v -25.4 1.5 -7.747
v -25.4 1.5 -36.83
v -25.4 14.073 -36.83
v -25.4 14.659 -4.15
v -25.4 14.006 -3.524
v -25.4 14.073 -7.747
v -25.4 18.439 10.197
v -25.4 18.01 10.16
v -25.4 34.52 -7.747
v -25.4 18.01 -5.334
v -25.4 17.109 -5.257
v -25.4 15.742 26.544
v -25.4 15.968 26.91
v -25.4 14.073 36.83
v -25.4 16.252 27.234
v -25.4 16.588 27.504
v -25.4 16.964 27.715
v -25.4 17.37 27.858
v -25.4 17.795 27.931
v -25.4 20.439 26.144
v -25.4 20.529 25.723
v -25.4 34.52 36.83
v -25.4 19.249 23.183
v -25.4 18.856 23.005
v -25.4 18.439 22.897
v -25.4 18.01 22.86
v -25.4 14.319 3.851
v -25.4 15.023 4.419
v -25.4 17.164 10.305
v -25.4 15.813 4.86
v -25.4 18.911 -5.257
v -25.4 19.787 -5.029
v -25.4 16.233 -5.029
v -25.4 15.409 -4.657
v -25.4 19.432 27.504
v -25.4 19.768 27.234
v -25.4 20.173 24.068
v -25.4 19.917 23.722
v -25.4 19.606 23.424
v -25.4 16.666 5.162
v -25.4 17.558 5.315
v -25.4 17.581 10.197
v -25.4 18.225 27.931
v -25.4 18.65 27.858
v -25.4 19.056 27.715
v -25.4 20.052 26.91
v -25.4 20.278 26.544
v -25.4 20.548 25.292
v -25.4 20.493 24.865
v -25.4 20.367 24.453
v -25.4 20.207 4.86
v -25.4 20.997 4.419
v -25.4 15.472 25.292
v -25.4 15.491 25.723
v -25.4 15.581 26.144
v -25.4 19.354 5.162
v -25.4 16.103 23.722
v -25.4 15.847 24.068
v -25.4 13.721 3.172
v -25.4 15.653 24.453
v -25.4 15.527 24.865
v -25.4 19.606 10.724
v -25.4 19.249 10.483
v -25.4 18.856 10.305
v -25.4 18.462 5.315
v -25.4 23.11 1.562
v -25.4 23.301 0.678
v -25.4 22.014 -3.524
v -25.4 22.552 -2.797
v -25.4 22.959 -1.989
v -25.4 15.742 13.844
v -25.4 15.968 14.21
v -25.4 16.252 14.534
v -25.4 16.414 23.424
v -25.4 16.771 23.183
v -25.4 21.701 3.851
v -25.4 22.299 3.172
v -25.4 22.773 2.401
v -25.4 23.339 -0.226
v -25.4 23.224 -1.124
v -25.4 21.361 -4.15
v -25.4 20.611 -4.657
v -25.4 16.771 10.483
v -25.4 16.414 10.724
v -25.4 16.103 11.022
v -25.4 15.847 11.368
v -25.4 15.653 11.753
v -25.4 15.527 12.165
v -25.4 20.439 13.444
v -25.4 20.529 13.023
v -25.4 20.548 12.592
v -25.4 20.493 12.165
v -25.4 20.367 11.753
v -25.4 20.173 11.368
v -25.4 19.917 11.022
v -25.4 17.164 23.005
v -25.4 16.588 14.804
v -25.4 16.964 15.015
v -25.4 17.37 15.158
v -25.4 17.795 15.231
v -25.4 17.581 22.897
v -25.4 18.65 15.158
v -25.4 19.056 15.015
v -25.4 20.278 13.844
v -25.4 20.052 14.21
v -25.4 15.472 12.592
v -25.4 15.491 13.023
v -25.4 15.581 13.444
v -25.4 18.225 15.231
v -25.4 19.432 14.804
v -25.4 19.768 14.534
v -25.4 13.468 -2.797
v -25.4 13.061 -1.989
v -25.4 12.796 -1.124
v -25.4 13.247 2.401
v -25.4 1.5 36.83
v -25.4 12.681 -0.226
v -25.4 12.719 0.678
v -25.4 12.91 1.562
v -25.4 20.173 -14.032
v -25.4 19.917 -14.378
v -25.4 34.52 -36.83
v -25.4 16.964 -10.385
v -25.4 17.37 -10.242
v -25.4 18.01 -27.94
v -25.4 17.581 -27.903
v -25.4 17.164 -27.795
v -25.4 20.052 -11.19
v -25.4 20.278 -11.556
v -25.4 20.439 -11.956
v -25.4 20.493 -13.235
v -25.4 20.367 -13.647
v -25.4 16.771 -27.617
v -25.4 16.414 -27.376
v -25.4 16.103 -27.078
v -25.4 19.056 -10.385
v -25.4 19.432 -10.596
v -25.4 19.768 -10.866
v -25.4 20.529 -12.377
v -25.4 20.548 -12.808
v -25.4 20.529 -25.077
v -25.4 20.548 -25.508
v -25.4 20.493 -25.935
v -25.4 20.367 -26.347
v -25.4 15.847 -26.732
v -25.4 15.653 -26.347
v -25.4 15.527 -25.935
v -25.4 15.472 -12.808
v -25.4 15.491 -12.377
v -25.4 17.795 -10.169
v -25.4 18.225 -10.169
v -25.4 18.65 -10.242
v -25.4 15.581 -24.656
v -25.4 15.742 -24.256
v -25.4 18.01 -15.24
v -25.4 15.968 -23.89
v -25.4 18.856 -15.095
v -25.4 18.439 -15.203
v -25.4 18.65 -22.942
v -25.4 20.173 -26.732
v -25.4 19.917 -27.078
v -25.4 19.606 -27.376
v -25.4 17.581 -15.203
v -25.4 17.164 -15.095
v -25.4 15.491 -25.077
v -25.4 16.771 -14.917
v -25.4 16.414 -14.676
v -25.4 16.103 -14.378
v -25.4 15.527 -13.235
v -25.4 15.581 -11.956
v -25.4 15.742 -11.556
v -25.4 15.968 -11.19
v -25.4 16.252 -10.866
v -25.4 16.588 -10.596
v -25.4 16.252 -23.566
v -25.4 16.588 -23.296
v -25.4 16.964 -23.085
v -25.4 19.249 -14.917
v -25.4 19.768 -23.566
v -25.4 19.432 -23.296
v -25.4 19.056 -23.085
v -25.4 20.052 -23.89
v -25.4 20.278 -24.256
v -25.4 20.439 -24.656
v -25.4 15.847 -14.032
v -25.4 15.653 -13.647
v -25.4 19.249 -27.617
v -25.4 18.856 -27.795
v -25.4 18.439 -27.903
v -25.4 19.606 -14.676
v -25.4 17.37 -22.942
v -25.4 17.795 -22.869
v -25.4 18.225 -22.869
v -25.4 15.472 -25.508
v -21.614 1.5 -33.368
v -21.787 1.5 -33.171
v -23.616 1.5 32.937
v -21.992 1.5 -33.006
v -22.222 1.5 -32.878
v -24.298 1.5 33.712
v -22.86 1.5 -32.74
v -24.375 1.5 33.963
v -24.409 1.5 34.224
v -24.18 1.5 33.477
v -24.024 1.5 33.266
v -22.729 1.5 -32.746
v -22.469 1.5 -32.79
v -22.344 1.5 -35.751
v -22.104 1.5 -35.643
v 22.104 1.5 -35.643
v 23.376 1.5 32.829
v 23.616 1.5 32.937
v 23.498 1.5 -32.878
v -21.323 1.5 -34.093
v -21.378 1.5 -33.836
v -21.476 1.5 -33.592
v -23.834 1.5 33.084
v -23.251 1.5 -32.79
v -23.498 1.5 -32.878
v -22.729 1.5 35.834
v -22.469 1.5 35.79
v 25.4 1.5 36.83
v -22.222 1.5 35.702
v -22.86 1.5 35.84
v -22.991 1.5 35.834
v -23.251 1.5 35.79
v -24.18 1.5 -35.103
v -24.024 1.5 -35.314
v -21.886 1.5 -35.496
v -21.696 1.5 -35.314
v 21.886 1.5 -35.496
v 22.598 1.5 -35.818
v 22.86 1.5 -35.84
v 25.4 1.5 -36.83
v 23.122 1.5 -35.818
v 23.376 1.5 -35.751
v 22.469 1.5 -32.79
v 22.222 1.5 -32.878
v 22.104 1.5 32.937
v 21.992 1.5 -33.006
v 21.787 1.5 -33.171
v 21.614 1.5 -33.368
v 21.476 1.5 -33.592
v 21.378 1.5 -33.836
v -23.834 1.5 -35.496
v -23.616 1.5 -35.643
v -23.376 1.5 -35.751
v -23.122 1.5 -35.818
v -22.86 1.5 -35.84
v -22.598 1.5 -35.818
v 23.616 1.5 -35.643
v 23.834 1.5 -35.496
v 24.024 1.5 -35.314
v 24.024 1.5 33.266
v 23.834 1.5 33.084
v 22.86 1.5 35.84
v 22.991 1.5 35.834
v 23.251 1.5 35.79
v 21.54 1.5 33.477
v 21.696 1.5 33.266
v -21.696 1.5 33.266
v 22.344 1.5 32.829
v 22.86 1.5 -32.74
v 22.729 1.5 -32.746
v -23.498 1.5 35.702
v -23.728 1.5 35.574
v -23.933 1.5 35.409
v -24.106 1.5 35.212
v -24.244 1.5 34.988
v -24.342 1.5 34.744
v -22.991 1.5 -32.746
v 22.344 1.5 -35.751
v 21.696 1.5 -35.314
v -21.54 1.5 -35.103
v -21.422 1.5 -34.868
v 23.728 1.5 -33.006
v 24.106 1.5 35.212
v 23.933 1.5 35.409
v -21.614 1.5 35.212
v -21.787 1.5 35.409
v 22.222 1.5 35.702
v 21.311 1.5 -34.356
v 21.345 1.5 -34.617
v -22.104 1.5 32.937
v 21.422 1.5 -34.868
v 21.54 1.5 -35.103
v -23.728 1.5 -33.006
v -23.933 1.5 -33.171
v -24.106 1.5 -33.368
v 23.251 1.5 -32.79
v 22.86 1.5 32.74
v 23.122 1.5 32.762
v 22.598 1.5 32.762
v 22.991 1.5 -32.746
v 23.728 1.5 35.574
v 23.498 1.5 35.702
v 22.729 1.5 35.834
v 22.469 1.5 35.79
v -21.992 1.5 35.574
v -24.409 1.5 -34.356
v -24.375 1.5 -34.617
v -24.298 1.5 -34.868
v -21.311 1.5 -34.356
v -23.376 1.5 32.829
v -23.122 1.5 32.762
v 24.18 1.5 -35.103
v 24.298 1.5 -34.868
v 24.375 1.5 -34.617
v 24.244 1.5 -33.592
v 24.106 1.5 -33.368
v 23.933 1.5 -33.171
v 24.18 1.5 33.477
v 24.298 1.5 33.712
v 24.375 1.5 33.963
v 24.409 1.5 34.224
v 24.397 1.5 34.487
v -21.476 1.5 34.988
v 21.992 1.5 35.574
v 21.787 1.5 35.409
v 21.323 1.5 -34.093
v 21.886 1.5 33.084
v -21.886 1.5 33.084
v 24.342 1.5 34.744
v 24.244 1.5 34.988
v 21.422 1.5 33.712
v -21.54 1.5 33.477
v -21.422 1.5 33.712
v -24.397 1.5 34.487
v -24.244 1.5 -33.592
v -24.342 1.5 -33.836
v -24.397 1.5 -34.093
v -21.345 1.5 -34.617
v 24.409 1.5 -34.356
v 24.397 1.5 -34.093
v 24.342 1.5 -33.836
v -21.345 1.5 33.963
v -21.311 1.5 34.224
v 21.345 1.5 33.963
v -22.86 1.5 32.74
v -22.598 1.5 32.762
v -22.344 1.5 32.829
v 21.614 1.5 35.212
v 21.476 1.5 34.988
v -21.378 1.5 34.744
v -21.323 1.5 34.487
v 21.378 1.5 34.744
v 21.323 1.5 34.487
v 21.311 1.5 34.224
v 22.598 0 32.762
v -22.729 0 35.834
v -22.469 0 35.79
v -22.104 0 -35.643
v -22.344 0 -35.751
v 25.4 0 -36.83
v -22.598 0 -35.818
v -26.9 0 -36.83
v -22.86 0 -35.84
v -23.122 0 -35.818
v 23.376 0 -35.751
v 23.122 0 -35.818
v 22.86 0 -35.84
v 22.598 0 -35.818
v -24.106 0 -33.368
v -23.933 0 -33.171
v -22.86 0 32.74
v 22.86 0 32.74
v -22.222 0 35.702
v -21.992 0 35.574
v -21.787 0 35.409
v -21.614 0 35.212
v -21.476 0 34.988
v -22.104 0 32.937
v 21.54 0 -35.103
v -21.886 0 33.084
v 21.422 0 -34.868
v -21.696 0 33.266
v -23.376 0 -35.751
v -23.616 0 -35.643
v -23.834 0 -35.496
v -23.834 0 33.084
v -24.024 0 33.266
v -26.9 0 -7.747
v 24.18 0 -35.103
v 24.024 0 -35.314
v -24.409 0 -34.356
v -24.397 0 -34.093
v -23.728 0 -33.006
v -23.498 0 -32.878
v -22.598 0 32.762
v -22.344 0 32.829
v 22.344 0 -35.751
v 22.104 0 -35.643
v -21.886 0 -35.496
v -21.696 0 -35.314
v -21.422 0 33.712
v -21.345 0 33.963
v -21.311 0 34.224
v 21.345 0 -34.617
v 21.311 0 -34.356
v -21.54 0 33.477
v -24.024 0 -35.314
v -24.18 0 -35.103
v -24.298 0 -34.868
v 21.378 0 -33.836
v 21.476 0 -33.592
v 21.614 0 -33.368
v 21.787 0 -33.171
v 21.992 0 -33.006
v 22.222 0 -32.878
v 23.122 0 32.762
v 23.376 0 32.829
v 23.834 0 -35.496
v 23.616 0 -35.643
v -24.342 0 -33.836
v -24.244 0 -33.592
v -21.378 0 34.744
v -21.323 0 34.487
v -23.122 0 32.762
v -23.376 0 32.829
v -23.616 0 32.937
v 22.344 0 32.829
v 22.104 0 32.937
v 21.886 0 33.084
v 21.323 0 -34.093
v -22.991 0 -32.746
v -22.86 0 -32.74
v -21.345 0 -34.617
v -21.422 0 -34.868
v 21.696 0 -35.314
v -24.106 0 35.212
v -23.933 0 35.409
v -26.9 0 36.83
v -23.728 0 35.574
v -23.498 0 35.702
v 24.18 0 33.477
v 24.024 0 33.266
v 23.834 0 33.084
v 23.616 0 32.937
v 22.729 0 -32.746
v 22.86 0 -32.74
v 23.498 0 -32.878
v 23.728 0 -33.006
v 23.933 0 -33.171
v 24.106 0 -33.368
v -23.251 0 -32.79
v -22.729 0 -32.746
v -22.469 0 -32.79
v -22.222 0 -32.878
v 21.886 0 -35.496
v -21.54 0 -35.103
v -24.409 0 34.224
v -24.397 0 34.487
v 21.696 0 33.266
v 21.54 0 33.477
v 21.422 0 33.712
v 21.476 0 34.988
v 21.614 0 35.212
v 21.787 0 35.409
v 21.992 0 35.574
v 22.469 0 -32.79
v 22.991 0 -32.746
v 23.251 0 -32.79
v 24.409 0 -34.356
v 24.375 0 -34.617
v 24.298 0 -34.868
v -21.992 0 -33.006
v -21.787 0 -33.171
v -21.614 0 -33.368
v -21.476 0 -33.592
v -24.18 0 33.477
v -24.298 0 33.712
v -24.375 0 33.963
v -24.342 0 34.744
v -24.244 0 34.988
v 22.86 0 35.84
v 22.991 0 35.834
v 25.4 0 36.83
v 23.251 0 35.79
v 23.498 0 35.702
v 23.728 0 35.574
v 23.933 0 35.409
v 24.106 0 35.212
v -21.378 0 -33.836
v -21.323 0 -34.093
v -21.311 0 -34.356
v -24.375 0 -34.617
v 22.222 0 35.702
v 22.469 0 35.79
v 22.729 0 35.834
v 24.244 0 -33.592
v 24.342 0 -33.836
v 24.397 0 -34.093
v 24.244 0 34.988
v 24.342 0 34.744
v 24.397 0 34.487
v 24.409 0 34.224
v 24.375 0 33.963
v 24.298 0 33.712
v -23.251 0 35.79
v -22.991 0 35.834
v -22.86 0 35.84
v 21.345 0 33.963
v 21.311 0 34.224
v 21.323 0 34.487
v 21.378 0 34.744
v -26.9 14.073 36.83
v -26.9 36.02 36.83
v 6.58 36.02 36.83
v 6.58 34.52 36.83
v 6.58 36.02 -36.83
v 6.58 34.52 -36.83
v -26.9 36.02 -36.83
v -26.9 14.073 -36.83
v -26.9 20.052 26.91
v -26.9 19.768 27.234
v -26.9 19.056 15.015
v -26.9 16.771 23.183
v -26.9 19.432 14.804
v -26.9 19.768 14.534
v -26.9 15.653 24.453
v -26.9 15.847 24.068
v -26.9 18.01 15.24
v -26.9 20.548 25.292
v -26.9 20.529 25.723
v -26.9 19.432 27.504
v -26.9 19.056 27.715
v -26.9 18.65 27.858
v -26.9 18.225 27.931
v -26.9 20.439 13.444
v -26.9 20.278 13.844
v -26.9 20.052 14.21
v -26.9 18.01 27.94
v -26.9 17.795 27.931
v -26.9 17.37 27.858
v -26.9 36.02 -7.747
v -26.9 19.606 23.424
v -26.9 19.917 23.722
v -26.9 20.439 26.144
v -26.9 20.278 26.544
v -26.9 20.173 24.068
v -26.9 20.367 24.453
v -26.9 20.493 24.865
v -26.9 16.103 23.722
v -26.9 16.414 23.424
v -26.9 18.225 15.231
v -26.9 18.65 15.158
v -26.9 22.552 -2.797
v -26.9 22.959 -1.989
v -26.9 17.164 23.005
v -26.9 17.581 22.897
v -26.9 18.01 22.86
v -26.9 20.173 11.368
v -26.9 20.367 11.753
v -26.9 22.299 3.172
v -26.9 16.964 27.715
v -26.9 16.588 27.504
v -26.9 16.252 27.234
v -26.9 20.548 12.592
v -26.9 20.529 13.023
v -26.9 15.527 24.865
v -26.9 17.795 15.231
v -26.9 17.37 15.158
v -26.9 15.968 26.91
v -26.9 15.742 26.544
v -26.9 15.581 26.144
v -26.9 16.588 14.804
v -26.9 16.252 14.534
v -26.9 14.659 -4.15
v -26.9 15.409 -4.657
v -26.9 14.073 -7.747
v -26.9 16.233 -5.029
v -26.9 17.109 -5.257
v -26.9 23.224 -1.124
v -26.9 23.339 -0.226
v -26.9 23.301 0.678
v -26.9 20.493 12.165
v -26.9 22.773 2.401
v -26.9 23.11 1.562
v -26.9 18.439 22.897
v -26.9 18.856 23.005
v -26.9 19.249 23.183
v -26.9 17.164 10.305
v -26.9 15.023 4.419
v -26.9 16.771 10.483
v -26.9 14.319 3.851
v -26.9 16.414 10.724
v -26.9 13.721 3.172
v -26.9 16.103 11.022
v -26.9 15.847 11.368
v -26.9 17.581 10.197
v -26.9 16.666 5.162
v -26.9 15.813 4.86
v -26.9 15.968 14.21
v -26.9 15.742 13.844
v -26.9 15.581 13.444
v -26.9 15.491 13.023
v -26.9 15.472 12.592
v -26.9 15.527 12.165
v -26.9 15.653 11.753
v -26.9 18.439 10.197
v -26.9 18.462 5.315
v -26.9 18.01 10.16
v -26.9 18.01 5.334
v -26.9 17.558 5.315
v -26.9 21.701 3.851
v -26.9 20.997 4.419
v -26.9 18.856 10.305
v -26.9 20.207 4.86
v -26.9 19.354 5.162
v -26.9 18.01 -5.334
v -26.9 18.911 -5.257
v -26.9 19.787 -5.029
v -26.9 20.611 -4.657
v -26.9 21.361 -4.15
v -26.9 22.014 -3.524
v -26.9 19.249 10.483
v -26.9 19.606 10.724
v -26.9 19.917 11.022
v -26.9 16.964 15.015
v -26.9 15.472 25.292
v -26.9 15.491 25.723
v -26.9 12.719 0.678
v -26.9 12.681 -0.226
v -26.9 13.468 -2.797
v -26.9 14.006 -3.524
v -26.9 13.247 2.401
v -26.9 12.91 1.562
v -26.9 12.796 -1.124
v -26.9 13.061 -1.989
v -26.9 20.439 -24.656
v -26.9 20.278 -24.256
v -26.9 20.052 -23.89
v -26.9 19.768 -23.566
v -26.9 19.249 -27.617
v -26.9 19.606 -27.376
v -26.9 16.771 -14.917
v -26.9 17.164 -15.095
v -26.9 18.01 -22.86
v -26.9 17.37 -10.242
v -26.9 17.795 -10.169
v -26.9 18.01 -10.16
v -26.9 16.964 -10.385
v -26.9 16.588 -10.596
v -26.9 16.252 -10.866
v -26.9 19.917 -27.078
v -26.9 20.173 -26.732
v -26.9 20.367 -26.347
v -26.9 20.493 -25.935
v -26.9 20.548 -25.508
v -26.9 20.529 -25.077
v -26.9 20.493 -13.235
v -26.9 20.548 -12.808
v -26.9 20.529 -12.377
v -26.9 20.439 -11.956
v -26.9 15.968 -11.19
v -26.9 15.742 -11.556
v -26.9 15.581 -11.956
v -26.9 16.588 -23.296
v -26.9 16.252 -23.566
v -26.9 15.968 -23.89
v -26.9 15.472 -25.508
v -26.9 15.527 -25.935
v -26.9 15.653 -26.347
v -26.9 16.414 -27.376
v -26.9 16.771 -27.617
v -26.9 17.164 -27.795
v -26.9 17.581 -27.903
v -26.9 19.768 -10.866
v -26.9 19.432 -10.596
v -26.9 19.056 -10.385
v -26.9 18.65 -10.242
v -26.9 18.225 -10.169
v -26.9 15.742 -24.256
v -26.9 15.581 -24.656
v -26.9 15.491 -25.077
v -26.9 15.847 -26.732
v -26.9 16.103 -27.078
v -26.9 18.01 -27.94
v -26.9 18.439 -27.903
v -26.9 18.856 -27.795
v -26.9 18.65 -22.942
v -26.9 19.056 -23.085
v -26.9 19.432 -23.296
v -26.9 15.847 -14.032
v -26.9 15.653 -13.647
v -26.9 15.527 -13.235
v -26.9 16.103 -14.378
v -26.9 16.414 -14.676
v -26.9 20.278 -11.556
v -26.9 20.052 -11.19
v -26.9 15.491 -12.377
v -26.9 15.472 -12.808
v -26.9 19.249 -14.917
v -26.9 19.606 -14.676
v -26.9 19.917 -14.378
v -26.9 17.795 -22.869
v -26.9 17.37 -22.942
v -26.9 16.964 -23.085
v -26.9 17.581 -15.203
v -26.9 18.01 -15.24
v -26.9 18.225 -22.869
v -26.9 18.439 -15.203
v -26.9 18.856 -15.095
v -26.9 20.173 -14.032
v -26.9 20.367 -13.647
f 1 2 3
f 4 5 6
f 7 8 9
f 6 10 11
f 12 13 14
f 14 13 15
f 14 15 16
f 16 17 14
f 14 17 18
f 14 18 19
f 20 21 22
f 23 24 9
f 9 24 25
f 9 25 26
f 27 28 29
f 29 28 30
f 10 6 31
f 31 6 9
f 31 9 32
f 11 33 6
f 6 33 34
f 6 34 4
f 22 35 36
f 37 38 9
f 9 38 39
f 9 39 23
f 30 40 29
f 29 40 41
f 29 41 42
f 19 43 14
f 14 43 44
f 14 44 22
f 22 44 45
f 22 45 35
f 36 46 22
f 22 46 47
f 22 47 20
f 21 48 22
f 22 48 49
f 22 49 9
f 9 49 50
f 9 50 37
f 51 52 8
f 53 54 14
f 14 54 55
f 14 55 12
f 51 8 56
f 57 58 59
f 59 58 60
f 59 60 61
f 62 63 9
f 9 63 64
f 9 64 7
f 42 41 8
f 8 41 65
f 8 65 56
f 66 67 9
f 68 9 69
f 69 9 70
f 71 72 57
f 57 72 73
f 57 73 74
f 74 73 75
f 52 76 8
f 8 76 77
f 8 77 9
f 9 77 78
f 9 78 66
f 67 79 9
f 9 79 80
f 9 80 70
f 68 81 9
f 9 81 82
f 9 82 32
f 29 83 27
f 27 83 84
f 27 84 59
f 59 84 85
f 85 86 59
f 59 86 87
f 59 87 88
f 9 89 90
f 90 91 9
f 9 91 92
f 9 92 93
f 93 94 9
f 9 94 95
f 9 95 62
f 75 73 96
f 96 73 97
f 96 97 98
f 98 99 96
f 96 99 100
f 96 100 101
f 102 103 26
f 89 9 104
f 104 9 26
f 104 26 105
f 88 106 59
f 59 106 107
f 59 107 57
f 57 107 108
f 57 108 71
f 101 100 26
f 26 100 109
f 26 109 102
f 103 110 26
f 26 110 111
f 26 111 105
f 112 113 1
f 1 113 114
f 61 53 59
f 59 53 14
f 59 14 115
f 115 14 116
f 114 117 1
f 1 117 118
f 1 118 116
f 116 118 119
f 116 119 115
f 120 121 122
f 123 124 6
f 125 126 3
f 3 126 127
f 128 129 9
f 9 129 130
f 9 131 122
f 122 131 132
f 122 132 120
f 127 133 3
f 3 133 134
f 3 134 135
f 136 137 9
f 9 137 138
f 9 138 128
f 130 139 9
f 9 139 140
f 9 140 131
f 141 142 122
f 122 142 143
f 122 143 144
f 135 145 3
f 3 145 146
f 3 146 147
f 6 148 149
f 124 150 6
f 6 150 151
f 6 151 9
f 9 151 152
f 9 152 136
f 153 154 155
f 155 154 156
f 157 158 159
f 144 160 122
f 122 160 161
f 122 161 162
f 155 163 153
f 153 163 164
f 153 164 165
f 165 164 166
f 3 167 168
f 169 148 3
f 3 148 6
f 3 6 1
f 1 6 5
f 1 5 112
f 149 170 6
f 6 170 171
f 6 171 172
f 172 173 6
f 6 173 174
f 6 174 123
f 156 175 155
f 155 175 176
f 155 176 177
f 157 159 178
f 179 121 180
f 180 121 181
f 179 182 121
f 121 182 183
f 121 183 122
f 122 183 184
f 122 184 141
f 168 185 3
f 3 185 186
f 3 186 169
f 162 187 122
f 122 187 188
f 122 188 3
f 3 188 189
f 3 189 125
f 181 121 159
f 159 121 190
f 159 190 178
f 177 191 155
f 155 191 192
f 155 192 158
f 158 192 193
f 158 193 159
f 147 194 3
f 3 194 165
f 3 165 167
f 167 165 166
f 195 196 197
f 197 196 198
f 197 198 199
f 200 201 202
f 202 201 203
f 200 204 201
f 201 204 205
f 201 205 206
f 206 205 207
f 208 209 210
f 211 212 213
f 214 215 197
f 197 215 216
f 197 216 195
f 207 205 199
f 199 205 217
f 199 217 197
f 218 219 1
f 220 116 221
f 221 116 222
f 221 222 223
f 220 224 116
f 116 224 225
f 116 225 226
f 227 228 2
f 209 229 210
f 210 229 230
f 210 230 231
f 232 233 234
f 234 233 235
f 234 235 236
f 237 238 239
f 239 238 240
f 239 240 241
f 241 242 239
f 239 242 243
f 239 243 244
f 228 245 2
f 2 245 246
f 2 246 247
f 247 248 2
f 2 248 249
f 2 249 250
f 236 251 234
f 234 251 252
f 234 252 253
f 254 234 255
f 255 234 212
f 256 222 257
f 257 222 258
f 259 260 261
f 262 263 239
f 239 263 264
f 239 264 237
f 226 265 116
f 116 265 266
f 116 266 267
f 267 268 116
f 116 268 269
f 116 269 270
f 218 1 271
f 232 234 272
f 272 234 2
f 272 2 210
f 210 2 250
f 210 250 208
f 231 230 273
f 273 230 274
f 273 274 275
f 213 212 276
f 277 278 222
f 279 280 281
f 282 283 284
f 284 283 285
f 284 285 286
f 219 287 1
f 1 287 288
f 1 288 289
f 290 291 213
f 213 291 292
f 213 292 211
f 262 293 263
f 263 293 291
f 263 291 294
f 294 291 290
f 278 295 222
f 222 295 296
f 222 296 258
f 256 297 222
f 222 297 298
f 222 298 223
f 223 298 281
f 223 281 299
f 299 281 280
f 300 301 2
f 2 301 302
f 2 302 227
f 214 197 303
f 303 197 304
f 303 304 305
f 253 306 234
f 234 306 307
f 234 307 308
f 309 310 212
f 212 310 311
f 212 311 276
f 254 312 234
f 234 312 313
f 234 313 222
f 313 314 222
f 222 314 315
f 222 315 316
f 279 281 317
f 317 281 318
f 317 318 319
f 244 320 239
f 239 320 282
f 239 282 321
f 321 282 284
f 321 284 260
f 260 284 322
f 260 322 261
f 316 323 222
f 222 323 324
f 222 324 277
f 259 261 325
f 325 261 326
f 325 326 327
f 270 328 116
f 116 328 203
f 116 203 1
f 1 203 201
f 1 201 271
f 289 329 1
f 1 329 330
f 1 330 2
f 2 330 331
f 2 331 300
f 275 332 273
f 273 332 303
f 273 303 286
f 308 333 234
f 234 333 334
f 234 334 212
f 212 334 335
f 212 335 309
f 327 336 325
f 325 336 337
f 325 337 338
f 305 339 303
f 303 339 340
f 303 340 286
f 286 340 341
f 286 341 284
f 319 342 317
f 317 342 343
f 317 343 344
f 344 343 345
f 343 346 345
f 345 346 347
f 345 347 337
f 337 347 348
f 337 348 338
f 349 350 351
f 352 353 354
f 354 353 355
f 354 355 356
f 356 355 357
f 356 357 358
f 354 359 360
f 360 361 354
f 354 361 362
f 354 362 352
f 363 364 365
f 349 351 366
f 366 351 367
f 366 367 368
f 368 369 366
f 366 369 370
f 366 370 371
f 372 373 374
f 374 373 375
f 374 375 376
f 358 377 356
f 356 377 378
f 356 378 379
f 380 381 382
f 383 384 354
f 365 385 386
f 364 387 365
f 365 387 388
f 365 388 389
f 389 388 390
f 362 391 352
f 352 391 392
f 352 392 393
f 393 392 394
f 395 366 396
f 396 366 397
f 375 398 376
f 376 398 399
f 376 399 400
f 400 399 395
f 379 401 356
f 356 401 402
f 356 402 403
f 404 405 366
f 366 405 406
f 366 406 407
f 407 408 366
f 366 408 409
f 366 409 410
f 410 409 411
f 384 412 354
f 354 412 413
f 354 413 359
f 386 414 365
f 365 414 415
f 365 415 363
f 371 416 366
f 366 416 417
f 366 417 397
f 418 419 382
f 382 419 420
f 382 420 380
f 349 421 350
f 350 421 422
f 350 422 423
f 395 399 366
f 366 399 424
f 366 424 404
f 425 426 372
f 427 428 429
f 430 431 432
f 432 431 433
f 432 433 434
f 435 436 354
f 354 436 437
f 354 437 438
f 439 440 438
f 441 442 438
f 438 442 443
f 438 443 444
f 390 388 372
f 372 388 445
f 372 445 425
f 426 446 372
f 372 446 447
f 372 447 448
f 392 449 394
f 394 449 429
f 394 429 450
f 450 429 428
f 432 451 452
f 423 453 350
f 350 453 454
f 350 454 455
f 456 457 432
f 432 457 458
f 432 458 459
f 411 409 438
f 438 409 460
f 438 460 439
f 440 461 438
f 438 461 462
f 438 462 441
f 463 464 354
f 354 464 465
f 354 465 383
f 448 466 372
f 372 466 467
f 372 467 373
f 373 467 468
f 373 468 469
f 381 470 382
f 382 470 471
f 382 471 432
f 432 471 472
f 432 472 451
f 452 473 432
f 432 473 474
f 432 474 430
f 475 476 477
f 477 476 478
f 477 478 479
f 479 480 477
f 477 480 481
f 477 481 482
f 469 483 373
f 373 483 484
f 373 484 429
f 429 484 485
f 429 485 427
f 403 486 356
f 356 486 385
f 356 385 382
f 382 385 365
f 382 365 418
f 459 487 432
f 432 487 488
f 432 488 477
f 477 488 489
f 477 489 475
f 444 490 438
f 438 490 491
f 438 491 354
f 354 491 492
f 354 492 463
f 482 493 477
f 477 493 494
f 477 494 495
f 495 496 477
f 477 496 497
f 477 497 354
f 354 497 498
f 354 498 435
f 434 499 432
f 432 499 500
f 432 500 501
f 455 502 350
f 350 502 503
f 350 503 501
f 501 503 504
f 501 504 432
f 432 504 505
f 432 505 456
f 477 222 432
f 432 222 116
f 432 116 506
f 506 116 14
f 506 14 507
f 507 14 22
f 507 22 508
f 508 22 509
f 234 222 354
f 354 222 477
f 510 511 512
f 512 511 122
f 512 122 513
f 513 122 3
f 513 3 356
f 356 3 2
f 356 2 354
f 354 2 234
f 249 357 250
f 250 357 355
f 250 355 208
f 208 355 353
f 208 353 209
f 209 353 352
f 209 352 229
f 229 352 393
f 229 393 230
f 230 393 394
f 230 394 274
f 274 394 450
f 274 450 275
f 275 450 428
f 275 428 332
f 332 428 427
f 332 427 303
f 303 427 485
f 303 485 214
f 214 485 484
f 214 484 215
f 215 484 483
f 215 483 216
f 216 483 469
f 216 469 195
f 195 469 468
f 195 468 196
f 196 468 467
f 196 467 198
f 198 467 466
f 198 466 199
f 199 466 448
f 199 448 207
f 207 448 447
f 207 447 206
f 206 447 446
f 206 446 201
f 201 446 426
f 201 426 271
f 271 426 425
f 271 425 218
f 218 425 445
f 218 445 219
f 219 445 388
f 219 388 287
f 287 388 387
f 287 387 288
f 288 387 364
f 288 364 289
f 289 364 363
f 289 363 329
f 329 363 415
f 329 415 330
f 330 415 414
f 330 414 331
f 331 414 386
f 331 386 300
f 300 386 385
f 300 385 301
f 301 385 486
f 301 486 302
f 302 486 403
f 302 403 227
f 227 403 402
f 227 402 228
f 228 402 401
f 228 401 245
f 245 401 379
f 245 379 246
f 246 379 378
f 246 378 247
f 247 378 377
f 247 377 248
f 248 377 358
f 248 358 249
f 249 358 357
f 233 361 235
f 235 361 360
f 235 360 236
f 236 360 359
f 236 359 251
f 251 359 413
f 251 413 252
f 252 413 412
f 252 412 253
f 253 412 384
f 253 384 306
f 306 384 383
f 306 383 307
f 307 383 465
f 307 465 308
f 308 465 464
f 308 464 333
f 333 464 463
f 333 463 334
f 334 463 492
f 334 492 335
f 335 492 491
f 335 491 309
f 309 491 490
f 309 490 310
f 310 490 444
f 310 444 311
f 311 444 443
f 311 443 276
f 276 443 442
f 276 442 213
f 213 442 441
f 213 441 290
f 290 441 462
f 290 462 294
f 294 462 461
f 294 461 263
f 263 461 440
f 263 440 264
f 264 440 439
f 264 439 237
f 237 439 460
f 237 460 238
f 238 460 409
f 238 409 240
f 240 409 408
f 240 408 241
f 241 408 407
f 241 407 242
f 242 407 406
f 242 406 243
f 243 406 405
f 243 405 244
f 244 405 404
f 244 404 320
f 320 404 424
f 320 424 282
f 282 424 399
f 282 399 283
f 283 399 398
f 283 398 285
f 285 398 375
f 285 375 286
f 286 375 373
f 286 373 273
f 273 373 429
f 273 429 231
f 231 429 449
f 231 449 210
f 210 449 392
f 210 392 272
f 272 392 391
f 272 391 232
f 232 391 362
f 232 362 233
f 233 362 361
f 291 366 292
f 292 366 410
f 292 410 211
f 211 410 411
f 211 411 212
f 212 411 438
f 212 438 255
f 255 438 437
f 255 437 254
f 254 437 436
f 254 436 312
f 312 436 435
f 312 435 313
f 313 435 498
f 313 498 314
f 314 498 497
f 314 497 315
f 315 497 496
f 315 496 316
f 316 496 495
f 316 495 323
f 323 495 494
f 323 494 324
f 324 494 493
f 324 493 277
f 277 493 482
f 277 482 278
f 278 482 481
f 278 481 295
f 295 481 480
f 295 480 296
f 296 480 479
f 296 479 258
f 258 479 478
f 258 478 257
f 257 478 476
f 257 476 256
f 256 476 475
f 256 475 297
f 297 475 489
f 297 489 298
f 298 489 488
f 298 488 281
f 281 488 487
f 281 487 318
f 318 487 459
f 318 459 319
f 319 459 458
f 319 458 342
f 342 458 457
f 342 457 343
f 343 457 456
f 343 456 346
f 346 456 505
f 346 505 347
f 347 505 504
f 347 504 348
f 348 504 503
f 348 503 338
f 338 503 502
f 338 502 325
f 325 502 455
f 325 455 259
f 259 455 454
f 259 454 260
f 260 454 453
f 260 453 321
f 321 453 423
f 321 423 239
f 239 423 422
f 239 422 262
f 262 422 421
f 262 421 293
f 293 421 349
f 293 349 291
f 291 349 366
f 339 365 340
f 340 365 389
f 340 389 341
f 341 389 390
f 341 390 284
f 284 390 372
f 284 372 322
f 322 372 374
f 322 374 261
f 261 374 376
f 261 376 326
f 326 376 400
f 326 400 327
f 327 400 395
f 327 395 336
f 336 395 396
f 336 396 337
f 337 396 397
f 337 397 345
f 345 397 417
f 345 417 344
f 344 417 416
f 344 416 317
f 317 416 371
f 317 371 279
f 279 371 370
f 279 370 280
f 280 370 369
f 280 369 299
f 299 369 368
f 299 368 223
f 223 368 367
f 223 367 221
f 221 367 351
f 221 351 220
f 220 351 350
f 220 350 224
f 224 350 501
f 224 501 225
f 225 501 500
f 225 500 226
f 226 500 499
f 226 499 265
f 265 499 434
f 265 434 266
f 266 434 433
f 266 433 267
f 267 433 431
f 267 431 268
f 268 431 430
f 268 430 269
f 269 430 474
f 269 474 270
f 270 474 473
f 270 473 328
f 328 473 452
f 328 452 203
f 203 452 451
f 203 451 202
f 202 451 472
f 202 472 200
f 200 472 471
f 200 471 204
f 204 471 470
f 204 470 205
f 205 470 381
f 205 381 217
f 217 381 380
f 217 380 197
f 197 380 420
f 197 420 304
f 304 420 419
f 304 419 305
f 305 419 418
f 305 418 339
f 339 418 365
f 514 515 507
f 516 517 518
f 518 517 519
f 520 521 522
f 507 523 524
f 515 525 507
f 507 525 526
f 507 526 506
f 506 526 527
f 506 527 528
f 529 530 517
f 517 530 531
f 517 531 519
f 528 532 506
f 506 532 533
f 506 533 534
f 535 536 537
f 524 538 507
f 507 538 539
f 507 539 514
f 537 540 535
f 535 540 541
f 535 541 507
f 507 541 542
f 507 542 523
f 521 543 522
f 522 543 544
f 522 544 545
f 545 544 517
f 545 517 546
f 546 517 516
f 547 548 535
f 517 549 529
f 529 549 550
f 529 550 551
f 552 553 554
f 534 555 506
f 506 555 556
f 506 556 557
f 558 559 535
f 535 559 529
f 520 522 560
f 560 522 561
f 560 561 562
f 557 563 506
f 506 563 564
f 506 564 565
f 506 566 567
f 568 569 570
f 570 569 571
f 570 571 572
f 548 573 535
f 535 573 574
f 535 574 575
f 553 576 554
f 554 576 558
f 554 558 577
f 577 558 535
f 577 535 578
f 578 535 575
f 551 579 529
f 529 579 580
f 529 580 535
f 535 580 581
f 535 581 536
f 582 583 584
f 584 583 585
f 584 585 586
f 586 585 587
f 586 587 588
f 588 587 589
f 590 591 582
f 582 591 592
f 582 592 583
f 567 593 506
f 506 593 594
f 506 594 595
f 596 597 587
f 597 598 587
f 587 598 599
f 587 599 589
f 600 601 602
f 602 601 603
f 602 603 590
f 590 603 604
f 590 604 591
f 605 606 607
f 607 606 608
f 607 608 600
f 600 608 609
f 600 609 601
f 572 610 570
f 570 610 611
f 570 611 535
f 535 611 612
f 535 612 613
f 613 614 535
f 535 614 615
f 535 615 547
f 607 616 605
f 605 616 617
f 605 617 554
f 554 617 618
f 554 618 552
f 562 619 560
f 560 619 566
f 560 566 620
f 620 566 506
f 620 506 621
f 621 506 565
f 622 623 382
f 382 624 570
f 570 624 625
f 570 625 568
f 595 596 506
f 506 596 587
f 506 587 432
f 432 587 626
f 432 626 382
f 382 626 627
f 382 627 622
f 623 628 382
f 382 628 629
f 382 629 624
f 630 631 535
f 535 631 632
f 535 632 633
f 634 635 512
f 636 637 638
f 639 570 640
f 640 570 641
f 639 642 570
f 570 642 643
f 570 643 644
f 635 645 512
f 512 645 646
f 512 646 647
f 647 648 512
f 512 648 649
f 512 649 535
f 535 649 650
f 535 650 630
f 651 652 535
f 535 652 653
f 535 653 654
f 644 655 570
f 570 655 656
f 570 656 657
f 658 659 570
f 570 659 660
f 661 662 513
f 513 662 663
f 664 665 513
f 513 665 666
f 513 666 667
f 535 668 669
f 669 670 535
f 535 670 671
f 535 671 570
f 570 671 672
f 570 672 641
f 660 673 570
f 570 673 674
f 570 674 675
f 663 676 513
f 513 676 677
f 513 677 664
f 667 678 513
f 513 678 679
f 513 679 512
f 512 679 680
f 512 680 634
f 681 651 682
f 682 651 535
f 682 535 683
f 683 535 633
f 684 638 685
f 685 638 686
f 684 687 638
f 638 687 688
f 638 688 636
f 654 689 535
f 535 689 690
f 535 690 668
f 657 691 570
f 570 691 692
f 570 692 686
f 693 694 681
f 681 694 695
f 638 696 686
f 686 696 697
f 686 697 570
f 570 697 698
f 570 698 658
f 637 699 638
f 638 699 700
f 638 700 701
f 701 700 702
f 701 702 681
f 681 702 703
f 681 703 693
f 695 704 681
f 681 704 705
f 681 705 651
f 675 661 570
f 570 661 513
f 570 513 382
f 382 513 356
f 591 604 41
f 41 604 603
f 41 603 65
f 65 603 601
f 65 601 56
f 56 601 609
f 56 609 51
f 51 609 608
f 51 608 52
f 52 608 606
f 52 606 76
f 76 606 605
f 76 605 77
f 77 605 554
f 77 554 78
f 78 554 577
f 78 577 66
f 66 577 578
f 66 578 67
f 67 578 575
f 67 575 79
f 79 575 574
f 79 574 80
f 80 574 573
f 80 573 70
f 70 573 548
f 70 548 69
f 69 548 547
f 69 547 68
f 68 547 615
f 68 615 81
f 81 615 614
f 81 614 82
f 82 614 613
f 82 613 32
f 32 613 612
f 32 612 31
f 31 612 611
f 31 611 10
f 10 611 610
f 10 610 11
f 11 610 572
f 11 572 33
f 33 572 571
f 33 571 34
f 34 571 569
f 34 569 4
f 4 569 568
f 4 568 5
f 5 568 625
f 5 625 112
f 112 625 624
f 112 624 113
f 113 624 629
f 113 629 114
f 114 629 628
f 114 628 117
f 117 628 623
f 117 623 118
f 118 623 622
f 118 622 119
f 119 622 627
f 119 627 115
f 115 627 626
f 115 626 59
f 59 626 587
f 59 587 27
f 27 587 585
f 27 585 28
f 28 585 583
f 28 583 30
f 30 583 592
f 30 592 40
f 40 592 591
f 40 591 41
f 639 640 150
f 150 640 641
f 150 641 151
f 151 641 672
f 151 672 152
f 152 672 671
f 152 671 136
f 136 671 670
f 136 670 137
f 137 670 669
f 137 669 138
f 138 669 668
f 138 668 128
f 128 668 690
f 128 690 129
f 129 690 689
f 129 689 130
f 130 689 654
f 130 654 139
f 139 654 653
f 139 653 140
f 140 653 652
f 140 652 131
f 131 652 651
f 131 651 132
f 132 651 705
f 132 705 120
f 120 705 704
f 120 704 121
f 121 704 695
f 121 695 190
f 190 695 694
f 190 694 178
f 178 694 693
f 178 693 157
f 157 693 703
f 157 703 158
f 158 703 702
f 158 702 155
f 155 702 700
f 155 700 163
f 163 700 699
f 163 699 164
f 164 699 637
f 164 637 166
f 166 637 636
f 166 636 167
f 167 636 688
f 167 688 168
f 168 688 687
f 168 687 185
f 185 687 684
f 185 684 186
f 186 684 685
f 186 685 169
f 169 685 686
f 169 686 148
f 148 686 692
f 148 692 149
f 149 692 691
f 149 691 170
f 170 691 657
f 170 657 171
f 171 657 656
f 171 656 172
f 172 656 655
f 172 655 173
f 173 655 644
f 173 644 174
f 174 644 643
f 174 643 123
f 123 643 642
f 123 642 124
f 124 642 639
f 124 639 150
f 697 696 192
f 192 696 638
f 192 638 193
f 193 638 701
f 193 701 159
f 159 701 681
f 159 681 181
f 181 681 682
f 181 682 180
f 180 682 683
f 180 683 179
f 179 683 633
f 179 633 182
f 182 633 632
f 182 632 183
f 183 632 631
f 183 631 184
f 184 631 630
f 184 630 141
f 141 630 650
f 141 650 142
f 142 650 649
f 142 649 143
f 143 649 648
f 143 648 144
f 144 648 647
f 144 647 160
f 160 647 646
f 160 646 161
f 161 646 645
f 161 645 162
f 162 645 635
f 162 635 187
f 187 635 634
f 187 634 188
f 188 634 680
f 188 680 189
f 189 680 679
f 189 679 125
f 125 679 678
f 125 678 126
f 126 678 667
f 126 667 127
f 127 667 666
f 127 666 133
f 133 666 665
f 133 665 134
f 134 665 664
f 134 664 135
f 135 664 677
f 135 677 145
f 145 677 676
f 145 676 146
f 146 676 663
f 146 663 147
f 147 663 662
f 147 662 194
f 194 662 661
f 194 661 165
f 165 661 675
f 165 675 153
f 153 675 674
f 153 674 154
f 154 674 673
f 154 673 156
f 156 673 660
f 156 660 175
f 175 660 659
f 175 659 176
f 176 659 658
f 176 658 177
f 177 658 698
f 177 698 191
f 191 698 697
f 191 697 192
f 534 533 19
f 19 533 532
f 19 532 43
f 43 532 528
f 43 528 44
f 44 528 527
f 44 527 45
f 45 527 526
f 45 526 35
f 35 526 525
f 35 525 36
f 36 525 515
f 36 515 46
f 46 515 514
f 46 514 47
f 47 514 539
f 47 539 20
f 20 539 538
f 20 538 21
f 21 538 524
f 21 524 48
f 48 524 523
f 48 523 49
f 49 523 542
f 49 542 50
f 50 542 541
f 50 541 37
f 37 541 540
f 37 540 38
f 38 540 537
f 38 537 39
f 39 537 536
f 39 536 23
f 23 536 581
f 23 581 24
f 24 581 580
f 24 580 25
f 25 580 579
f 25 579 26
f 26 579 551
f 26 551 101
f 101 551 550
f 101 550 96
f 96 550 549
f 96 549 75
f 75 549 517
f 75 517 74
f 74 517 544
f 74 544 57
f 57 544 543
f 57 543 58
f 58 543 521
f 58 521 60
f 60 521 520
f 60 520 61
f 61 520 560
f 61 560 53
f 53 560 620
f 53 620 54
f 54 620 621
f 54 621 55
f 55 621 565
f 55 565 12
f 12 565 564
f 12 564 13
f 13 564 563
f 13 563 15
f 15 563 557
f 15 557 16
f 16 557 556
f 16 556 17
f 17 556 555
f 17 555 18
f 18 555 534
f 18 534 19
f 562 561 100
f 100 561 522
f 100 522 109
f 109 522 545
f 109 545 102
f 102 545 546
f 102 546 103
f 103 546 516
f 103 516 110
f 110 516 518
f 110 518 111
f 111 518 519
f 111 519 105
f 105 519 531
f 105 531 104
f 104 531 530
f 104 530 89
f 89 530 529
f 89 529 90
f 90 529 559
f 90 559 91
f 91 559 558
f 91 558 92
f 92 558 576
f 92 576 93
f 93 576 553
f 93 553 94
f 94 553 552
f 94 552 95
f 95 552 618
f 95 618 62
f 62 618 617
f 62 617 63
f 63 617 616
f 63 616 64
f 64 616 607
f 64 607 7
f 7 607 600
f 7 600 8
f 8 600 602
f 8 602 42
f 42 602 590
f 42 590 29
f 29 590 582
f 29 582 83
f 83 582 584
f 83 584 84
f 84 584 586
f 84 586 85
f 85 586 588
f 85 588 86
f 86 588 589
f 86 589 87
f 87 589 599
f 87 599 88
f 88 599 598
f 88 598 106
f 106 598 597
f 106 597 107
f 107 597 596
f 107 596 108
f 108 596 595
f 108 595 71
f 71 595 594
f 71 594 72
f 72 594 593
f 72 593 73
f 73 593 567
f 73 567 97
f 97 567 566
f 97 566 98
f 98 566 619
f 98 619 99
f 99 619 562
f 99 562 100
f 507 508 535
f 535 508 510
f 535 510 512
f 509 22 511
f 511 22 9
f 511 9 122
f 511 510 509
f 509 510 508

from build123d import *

# Parameters (mm, degrees)
SKETCH_1_W          = 50.8
SKETCH_1_H          = 73.66
SKETCH_1_R          = 1.55
EXTRUDE_1_DEPTH     = 1.5
SKETCH_2_W          = 73.66
SKETCH_2_H          = 1.5
EXTRUDE_2_DEPTH     = 1.5
SKETCH_3_W          = 1.5
SKETCH_3_H          = 73.66
EXTRUDE_3_DEPTH     = 33.02
SKETCH_4_R          = 5.334
SKETCH_4_R_2        = 2.54
CUT_EXTRUDE_1_DEPTH = 33.02
SKETCH_6_W          = 1.5
SKETCH_6_H          = 73.66
EXTRUDE_4_DEPTH     = 1.5
SKETCH_7_W          = 73.66
SKETCH_7_H          = 1.5
EXTRUDE_5_DEPTH     = 31.98


with BuildPart() as part:
    # 草图1 → 凸台-拉伸1 (new body)
    with BuildSketch(Plane(origin=(0, 0, 0), x_dir=(1, 0, 0), z_dir=(0, 1, 0))):
        Rectangle(SKETCH_1_W, SKETCH_1_H)
        with Locations(Location((-22.86, 34.29, 0), (0, 0, 270))):
            Circle(SKETCH_1_R, mode=Mode.SUBTRACT)
        with Locations(Location((22.86, 34.29, 0), (0, 0, 270))):
            Circle(SKETCH_1_R, mode=Mode.SUBTRACT)
        with Locations(Location((22.86, -34.29, 0), (0, 0, 270))):
            Circle(SKETCH_1_R, mode=Mode.SUBTRACT)
        with Locations(Location((-22.86, -34.29, 0), (0, 0, 270))):
            Circle(SKETCH_1_R, mode=Mode.SUBTRACT)
    extrude(amount=EXTRUDE_1_DEPTH)

    # 草图2 → 凸台-拉伸2 (add)
    with BuildSketch(Plane.ZY.offset(25.4)):
        with Locations((0, 0.75)):
            Rectangle(SKETCH_2_W, SKETCH_2_H)
    extrude(amount=EXTRUDE_2_DEPTH)

    # 草图3 → 凸台-拉伸3 (add)
    with BuildSketch(Plane(origin=(0, 1.5, 0), x_dir=(1, 0, 0), z_dir=(0, 1, 0))):
        with Locations((-26.15, 0)):
            Rectangle(SKETCH_3_W, SKETCH_3_H)
    extrude(amount=EXTRUDE_3_DEPTH)

    # 草图4 → 切除-拉伸1 (cut)
    with BuildSketch(Plane(origin=(-25.4, 0, 0), x_dir=(0, 0, -1), z_dir=(1, 0, 0))):
        with Locations((0, 18.01)):
            Circle(SKETCH_4_R)
        with Locations((12.7, 18.01)):
            Circle(SKETCH_4_R_2)
        with Locations((25.4, 18.01)):
            Circle(SKETCH_4_R_2)
        with Locations((-12.7, 18.01)):
            Circle(SKETCH_4_R_2)
        with Locations((-25.4, 18.01)):
            Circle(SKETCH_4_R_2)
    extrude(amount=-CUT_EXTRUDE_1_DEPTH, mode=Mode.SUBTRACT)

    # 草图6 → 凸台-拉伸4 (add)
    with BuildSketch(Plane(origin=(0, 34.52, 0), x_dir=(1, 0, 0), z_dir=(0, 1, 0))):
        with Locations((-26.15, 0)):
            Rectangle(SKETCH_6_W, SKETCH_6_H)
    extrude(amount=EXTRUDE_4_DEPTH)

    # 草图7 → 凸台-拉伸5 (add)
    with BuildSketch(Plane(origin=(-25.4, 0, 0), x_dir=(0, 0, -1), z_dir=(1, 0, 0))):
        with Locations((0, 35.27)):
            Rectangle(SKETCH_7_W, SKETCH_7_H)
    extrude(amount=EXTRUDE_5_DEPTH)


solid = part.part
